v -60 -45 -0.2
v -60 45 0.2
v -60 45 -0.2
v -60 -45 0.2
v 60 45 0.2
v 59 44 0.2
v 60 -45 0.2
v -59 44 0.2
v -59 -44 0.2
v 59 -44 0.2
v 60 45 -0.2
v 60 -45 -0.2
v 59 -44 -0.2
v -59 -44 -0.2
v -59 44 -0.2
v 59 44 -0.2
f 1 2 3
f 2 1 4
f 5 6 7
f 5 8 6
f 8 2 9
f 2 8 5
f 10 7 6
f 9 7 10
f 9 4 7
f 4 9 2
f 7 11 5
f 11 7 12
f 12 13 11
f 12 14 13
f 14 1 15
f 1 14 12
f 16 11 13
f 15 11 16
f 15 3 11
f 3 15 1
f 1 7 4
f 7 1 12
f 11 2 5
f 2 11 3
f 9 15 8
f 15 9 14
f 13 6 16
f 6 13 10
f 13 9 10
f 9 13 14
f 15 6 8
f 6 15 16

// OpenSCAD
difference(){
	cube([120,90,0.4],center=true);
	cube([120-2,90-2,1],center=true);
}
